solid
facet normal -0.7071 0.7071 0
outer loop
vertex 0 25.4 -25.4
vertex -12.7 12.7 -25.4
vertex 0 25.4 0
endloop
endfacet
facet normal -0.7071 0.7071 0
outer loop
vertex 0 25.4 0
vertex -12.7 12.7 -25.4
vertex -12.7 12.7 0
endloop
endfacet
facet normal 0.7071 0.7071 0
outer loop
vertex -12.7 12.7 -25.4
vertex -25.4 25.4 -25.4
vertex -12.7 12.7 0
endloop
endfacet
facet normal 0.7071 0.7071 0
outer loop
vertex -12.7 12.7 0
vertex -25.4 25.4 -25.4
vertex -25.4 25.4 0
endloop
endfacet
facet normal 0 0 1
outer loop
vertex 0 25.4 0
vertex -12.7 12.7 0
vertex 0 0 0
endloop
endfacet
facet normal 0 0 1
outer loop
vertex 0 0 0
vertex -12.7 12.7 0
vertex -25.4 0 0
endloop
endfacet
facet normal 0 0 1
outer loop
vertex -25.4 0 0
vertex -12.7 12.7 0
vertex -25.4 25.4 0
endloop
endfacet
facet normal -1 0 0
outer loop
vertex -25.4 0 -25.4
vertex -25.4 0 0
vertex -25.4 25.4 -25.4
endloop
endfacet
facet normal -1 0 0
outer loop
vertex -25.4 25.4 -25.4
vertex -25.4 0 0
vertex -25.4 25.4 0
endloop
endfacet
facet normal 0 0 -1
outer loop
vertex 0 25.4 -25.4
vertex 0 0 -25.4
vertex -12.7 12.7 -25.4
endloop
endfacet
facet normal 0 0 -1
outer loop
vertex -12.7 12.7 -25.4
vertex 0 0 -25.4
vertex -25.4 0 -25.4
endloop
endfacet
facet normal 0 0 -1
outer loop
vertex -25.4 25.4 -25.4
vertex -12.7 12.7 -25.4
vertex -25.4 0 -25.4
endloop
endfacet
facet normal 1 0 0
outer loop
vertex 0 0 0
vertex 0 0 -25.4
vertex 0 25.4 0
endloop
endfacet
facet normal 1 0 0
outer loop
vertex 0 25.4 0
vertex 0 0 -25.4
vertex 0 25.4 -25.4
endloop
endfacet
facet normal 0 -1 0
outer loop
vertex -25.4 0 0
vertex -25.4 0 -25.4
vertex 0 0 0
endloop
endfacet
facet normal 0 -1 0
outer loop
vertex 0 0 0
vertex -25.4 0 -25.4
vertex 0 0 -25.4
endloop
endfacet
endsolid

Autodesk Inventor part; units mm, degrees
ref_plane "YZ Plane" through (0, 0, 0) normal (1, 0, 0) x (0, 1, 0)
ref_plane "XZ Plane" through (0, 0, 0) normal (0, 1, 0) x (-1, 0, 0)
ref_plane "XY Plane" through (0, 0, 0) normal (0, 0, 1) x (1, 0, 0)
sketch "Sketch1" plane through (0, 0, 0) normal (0, 1, 0) x (-1, 0, 0)
  line L0 (0, 0) -> (25.4, 0)
  line L1 (25.4, 0) -> (25.4, -25.4)
  line L2 (25.4, -25.4) -> (0, -25.4)
  line L3 (0, -25.4) -> (0, 0)
  dimension "d0" = 25.4
  dimension "d1" = 25.4
extrude "Extrusion1" add sketch "Sketch1" along normal blind 25.4
sketch "Sketch2" plane through (0, 0, -25.4) normal (0, 0, -1) x (-1, 0, 0)
  line L0 (25.4, 25.4) -> (0, 25.4) projected
  line L1 (12.7, 12.7) -> (0, 25.4)
  line L2 (0, 25.4) -> (25.4, 25.4)
  line L3 (25.4, 25.4) -> (12.7, 12.7)
  point P0 (0, 0)
extrude "Extrusion2" cut sketch "Sketch2" against normal blind 25.4
properties part number "2 color test pt1"
